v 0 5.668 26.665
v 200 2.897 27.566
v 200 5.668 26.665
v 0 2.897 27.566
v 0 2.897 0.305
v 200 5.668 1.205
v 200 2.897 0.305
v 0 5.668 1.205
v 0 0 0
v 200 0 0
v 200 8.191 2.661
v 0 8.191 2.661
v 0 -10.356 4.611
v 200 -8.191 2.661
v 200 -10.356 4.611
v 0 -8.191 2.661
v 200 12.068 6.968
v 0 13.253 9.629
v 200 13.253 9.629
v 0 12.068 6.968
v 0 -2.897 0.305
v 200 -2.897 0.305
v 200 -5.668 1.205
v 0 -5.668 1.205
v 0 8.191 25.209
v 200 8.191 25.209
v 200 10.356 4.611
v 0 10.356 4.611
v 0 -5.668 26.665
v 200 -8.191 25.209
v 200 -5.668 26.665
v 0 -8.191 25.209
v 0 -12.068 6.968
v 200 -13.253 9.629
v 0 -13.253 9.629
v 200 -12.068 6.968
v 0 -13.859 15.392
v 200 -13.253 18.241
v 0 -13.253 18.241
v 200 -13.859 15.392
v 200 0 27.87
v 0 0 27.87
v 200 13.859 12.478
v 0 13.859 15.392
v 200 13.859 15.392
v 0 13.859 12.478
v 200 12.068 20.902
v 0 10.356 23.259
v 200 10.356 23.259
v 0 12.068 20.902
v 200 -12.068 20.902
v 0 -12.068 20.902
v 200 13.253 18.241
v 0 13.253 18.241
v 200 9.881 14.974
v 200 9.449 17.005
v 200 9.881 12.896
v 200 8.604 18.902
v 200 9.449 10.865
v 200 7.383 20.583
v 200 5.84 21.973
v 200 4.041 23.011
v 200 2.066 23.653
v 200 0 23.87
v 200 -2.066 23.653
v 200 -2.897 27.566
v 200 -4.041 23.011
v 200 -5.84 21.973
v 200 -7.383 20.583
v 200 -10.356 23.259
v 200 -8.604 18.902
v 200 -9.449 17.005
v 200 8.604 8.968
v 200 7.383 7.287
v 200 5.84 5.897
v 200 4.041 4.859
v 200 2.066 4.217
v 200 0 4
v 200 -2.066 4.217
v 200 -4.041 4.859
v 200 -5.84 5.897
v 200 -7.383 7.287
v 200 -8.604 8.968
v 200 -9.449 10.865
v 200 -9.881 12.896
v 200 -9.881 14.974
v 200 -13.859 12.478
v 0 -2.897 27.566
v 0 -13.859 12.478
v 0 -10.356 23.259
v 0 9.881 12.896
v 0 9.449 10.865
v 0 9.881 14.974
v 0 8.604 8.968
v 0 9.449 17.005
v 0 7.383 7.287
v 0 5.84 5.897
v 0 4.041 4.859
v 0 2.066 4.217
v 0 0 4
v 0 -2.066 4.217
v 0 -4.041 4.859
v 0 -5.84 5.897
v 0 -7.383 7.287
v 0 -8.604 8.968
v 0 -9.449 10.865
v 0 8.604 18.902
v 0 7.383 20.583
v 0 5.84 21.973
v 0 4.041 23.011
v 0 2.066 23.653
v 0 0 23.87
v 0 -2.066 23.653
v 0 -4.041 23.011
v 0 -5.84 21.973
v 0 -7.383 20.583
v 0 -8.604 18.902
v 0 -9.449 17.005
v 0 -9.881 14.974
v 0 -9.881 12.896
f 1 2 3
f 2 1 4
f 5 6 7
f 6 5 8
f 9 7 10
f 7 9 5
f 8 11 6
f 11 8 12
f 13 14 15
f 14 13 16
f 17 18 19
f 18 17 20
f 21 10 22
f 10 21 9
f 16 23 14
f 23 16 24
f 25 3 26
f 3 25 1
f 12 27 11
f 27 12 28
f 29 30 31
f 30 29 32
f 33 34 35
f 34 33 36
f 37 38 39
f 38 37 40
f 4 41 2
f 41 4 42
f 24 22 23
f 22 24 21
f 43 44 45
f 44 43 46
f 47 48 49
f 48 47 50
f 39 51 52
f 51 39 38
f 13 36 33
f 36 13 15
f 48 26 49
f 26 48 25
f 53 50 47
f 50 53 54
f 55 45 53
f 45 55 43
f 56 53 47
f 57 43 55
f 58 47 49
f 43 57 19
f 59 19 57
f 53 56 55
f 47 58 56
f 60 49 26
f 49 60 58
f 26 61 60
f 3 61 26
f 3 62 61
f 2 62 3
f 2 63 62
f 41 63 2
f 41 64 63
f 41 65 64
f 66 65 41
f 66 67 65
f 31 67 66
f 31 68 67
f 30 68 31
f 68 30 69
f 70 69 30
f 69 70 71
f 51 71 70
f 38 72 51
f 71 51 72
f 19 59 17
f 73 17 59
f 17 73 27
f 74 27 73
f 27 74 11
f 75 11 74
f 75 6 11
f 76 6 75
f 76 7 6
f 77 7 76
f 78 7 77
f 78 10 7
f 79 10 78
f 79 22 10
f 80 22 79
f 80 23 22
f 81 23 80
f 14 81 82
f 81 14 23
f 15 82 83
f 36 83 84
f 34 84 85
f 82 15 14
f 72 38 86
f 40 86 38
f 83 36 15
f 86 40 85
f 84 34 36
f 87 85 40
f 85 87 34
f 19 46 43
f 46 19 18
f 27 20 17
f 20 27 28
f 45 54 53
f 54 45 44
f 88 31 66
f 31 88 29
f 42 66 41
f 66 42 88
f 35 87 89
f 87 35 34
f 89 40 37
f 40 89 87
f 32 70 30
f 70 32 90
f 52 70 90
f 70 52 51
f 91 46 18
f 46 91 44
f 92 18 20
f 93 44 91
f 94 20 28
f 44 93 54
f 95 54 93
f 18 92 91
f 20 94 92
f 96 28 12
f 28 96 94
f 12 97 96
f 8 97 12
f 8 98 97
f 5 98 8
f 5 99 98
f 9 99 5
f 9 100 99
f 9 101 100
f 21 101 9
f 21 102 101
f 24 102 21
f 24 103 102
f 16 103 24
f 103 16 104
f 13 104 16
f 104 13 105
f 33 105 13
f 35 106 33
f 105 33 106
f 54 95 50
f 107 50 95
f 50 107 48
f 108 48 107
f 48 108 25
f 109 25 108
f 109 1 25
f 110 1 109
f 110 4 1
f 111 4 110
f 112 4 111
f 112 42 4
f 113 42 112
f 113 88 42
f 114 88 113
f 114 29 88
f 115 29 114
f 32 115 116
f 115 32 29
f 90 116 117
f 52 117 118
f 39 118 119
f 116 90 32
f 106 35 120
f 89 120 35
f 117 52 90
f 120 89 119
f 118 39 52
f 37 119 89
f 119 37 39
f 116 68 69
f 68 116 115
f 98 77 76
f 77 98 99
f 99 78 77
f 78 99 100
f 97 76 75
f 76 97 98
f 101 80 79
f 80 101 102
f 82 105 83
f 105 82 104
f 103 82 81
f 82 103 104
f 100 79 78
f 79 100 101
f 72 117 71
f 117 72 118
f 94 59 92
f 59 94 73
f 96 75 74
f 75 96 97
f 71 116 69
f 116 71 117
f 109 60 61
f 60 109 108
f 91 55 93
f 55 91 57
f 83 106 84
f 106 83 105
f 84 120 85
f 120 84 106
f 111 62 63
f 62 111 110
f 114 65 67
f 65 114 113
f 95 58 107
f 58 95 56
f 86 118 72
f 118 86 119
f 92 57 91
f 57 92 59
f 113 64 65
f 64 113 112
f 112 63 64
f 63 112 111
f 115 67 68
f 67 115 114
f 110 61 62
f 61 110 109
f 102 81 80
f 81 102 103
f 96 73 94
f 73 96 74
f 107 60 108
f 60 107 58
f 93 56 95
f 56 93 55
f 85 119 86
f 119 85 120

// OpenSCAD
l = 200;
d = 27.87;
t = 4;

translate([ 0, 0, d / 2 ]) rotate([ 0, 90, 0 ]) difference()
{
    // Outer cylinder
    cylinder(d = d, h = l);

    // Inner cylinder
    cylinder(d = d - 2 * t, h = l);
}
